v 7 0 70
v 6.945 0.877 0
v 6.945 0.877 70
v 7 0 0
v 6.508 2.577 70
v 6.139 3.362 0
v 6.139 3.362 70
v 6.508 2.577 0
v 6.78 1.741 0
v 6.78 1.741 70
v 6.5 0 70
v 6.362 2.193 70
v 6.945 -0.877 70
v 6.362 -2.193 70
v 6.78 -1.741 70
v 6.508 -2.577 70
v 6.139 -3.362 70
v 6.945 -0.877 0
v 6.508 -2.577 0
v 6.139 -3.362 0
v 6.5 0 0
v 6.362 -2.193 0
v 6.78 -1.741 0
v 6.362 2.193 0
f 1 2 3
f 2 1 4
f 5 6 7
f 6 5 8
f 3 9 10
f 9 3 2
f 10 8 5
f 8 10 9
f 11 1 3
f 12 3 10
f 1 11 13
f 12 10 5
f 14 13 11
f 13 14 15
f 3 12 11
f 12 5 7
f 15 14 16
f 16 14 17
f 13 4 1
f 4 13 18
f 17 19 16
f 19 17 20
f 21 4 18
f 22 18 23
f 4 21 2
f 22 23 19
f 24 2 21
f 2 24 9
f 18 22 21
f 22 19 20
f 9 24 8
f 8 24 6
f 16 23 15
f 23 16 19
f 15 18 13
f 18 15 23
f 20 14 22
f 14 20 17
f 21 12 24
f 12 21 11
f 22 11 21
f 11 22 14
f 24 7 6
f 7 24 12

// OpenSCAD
$fn = 50;


difference() {
	union() {
		cylinder(h = 70, r = 7.0000000000);
		translate(v = [-14.0000000000, 0, 0]) {
			cylinder(h = 70, r = 7.0000000000);
		}
	}
	union() {
		cylinder(h = 70, r = 3.2500000000);
		cylinder(h = 70, r = 1.8000000000);
		cylinder(h = 70, r = 1.8000000000);
		cylinder(h = 70, r = 1.8000000000);
		translate(v = [-18.5000000000, 0, 0]) {
			hull() {
				translate(v = [-3.7500000000, 0.0000000000, 0]) {
					cylinder(h = 70, r = 7.5000000000);
				}
				translate(v = [3.7500000000, 0.0000000000, 0]) {
					cylinder(h = 70, r = 7.5000000000);
				}
				translate(v = [-3.7500000000, -0.0000000000, 0]) {
					cylinder(h = 70, r = 7.5000000000);
				}
				translate(v = [3.7500000000, -0.0000000000, 0]) {
					cylinder(h = 70, r = 7.5000000000);
				}
			}
		}
		translate(v = [-11.0000000000, 0, 0.0000000000]) {
			cylinder(h = 70, r = 17.5000000000);
		}
	}
}
